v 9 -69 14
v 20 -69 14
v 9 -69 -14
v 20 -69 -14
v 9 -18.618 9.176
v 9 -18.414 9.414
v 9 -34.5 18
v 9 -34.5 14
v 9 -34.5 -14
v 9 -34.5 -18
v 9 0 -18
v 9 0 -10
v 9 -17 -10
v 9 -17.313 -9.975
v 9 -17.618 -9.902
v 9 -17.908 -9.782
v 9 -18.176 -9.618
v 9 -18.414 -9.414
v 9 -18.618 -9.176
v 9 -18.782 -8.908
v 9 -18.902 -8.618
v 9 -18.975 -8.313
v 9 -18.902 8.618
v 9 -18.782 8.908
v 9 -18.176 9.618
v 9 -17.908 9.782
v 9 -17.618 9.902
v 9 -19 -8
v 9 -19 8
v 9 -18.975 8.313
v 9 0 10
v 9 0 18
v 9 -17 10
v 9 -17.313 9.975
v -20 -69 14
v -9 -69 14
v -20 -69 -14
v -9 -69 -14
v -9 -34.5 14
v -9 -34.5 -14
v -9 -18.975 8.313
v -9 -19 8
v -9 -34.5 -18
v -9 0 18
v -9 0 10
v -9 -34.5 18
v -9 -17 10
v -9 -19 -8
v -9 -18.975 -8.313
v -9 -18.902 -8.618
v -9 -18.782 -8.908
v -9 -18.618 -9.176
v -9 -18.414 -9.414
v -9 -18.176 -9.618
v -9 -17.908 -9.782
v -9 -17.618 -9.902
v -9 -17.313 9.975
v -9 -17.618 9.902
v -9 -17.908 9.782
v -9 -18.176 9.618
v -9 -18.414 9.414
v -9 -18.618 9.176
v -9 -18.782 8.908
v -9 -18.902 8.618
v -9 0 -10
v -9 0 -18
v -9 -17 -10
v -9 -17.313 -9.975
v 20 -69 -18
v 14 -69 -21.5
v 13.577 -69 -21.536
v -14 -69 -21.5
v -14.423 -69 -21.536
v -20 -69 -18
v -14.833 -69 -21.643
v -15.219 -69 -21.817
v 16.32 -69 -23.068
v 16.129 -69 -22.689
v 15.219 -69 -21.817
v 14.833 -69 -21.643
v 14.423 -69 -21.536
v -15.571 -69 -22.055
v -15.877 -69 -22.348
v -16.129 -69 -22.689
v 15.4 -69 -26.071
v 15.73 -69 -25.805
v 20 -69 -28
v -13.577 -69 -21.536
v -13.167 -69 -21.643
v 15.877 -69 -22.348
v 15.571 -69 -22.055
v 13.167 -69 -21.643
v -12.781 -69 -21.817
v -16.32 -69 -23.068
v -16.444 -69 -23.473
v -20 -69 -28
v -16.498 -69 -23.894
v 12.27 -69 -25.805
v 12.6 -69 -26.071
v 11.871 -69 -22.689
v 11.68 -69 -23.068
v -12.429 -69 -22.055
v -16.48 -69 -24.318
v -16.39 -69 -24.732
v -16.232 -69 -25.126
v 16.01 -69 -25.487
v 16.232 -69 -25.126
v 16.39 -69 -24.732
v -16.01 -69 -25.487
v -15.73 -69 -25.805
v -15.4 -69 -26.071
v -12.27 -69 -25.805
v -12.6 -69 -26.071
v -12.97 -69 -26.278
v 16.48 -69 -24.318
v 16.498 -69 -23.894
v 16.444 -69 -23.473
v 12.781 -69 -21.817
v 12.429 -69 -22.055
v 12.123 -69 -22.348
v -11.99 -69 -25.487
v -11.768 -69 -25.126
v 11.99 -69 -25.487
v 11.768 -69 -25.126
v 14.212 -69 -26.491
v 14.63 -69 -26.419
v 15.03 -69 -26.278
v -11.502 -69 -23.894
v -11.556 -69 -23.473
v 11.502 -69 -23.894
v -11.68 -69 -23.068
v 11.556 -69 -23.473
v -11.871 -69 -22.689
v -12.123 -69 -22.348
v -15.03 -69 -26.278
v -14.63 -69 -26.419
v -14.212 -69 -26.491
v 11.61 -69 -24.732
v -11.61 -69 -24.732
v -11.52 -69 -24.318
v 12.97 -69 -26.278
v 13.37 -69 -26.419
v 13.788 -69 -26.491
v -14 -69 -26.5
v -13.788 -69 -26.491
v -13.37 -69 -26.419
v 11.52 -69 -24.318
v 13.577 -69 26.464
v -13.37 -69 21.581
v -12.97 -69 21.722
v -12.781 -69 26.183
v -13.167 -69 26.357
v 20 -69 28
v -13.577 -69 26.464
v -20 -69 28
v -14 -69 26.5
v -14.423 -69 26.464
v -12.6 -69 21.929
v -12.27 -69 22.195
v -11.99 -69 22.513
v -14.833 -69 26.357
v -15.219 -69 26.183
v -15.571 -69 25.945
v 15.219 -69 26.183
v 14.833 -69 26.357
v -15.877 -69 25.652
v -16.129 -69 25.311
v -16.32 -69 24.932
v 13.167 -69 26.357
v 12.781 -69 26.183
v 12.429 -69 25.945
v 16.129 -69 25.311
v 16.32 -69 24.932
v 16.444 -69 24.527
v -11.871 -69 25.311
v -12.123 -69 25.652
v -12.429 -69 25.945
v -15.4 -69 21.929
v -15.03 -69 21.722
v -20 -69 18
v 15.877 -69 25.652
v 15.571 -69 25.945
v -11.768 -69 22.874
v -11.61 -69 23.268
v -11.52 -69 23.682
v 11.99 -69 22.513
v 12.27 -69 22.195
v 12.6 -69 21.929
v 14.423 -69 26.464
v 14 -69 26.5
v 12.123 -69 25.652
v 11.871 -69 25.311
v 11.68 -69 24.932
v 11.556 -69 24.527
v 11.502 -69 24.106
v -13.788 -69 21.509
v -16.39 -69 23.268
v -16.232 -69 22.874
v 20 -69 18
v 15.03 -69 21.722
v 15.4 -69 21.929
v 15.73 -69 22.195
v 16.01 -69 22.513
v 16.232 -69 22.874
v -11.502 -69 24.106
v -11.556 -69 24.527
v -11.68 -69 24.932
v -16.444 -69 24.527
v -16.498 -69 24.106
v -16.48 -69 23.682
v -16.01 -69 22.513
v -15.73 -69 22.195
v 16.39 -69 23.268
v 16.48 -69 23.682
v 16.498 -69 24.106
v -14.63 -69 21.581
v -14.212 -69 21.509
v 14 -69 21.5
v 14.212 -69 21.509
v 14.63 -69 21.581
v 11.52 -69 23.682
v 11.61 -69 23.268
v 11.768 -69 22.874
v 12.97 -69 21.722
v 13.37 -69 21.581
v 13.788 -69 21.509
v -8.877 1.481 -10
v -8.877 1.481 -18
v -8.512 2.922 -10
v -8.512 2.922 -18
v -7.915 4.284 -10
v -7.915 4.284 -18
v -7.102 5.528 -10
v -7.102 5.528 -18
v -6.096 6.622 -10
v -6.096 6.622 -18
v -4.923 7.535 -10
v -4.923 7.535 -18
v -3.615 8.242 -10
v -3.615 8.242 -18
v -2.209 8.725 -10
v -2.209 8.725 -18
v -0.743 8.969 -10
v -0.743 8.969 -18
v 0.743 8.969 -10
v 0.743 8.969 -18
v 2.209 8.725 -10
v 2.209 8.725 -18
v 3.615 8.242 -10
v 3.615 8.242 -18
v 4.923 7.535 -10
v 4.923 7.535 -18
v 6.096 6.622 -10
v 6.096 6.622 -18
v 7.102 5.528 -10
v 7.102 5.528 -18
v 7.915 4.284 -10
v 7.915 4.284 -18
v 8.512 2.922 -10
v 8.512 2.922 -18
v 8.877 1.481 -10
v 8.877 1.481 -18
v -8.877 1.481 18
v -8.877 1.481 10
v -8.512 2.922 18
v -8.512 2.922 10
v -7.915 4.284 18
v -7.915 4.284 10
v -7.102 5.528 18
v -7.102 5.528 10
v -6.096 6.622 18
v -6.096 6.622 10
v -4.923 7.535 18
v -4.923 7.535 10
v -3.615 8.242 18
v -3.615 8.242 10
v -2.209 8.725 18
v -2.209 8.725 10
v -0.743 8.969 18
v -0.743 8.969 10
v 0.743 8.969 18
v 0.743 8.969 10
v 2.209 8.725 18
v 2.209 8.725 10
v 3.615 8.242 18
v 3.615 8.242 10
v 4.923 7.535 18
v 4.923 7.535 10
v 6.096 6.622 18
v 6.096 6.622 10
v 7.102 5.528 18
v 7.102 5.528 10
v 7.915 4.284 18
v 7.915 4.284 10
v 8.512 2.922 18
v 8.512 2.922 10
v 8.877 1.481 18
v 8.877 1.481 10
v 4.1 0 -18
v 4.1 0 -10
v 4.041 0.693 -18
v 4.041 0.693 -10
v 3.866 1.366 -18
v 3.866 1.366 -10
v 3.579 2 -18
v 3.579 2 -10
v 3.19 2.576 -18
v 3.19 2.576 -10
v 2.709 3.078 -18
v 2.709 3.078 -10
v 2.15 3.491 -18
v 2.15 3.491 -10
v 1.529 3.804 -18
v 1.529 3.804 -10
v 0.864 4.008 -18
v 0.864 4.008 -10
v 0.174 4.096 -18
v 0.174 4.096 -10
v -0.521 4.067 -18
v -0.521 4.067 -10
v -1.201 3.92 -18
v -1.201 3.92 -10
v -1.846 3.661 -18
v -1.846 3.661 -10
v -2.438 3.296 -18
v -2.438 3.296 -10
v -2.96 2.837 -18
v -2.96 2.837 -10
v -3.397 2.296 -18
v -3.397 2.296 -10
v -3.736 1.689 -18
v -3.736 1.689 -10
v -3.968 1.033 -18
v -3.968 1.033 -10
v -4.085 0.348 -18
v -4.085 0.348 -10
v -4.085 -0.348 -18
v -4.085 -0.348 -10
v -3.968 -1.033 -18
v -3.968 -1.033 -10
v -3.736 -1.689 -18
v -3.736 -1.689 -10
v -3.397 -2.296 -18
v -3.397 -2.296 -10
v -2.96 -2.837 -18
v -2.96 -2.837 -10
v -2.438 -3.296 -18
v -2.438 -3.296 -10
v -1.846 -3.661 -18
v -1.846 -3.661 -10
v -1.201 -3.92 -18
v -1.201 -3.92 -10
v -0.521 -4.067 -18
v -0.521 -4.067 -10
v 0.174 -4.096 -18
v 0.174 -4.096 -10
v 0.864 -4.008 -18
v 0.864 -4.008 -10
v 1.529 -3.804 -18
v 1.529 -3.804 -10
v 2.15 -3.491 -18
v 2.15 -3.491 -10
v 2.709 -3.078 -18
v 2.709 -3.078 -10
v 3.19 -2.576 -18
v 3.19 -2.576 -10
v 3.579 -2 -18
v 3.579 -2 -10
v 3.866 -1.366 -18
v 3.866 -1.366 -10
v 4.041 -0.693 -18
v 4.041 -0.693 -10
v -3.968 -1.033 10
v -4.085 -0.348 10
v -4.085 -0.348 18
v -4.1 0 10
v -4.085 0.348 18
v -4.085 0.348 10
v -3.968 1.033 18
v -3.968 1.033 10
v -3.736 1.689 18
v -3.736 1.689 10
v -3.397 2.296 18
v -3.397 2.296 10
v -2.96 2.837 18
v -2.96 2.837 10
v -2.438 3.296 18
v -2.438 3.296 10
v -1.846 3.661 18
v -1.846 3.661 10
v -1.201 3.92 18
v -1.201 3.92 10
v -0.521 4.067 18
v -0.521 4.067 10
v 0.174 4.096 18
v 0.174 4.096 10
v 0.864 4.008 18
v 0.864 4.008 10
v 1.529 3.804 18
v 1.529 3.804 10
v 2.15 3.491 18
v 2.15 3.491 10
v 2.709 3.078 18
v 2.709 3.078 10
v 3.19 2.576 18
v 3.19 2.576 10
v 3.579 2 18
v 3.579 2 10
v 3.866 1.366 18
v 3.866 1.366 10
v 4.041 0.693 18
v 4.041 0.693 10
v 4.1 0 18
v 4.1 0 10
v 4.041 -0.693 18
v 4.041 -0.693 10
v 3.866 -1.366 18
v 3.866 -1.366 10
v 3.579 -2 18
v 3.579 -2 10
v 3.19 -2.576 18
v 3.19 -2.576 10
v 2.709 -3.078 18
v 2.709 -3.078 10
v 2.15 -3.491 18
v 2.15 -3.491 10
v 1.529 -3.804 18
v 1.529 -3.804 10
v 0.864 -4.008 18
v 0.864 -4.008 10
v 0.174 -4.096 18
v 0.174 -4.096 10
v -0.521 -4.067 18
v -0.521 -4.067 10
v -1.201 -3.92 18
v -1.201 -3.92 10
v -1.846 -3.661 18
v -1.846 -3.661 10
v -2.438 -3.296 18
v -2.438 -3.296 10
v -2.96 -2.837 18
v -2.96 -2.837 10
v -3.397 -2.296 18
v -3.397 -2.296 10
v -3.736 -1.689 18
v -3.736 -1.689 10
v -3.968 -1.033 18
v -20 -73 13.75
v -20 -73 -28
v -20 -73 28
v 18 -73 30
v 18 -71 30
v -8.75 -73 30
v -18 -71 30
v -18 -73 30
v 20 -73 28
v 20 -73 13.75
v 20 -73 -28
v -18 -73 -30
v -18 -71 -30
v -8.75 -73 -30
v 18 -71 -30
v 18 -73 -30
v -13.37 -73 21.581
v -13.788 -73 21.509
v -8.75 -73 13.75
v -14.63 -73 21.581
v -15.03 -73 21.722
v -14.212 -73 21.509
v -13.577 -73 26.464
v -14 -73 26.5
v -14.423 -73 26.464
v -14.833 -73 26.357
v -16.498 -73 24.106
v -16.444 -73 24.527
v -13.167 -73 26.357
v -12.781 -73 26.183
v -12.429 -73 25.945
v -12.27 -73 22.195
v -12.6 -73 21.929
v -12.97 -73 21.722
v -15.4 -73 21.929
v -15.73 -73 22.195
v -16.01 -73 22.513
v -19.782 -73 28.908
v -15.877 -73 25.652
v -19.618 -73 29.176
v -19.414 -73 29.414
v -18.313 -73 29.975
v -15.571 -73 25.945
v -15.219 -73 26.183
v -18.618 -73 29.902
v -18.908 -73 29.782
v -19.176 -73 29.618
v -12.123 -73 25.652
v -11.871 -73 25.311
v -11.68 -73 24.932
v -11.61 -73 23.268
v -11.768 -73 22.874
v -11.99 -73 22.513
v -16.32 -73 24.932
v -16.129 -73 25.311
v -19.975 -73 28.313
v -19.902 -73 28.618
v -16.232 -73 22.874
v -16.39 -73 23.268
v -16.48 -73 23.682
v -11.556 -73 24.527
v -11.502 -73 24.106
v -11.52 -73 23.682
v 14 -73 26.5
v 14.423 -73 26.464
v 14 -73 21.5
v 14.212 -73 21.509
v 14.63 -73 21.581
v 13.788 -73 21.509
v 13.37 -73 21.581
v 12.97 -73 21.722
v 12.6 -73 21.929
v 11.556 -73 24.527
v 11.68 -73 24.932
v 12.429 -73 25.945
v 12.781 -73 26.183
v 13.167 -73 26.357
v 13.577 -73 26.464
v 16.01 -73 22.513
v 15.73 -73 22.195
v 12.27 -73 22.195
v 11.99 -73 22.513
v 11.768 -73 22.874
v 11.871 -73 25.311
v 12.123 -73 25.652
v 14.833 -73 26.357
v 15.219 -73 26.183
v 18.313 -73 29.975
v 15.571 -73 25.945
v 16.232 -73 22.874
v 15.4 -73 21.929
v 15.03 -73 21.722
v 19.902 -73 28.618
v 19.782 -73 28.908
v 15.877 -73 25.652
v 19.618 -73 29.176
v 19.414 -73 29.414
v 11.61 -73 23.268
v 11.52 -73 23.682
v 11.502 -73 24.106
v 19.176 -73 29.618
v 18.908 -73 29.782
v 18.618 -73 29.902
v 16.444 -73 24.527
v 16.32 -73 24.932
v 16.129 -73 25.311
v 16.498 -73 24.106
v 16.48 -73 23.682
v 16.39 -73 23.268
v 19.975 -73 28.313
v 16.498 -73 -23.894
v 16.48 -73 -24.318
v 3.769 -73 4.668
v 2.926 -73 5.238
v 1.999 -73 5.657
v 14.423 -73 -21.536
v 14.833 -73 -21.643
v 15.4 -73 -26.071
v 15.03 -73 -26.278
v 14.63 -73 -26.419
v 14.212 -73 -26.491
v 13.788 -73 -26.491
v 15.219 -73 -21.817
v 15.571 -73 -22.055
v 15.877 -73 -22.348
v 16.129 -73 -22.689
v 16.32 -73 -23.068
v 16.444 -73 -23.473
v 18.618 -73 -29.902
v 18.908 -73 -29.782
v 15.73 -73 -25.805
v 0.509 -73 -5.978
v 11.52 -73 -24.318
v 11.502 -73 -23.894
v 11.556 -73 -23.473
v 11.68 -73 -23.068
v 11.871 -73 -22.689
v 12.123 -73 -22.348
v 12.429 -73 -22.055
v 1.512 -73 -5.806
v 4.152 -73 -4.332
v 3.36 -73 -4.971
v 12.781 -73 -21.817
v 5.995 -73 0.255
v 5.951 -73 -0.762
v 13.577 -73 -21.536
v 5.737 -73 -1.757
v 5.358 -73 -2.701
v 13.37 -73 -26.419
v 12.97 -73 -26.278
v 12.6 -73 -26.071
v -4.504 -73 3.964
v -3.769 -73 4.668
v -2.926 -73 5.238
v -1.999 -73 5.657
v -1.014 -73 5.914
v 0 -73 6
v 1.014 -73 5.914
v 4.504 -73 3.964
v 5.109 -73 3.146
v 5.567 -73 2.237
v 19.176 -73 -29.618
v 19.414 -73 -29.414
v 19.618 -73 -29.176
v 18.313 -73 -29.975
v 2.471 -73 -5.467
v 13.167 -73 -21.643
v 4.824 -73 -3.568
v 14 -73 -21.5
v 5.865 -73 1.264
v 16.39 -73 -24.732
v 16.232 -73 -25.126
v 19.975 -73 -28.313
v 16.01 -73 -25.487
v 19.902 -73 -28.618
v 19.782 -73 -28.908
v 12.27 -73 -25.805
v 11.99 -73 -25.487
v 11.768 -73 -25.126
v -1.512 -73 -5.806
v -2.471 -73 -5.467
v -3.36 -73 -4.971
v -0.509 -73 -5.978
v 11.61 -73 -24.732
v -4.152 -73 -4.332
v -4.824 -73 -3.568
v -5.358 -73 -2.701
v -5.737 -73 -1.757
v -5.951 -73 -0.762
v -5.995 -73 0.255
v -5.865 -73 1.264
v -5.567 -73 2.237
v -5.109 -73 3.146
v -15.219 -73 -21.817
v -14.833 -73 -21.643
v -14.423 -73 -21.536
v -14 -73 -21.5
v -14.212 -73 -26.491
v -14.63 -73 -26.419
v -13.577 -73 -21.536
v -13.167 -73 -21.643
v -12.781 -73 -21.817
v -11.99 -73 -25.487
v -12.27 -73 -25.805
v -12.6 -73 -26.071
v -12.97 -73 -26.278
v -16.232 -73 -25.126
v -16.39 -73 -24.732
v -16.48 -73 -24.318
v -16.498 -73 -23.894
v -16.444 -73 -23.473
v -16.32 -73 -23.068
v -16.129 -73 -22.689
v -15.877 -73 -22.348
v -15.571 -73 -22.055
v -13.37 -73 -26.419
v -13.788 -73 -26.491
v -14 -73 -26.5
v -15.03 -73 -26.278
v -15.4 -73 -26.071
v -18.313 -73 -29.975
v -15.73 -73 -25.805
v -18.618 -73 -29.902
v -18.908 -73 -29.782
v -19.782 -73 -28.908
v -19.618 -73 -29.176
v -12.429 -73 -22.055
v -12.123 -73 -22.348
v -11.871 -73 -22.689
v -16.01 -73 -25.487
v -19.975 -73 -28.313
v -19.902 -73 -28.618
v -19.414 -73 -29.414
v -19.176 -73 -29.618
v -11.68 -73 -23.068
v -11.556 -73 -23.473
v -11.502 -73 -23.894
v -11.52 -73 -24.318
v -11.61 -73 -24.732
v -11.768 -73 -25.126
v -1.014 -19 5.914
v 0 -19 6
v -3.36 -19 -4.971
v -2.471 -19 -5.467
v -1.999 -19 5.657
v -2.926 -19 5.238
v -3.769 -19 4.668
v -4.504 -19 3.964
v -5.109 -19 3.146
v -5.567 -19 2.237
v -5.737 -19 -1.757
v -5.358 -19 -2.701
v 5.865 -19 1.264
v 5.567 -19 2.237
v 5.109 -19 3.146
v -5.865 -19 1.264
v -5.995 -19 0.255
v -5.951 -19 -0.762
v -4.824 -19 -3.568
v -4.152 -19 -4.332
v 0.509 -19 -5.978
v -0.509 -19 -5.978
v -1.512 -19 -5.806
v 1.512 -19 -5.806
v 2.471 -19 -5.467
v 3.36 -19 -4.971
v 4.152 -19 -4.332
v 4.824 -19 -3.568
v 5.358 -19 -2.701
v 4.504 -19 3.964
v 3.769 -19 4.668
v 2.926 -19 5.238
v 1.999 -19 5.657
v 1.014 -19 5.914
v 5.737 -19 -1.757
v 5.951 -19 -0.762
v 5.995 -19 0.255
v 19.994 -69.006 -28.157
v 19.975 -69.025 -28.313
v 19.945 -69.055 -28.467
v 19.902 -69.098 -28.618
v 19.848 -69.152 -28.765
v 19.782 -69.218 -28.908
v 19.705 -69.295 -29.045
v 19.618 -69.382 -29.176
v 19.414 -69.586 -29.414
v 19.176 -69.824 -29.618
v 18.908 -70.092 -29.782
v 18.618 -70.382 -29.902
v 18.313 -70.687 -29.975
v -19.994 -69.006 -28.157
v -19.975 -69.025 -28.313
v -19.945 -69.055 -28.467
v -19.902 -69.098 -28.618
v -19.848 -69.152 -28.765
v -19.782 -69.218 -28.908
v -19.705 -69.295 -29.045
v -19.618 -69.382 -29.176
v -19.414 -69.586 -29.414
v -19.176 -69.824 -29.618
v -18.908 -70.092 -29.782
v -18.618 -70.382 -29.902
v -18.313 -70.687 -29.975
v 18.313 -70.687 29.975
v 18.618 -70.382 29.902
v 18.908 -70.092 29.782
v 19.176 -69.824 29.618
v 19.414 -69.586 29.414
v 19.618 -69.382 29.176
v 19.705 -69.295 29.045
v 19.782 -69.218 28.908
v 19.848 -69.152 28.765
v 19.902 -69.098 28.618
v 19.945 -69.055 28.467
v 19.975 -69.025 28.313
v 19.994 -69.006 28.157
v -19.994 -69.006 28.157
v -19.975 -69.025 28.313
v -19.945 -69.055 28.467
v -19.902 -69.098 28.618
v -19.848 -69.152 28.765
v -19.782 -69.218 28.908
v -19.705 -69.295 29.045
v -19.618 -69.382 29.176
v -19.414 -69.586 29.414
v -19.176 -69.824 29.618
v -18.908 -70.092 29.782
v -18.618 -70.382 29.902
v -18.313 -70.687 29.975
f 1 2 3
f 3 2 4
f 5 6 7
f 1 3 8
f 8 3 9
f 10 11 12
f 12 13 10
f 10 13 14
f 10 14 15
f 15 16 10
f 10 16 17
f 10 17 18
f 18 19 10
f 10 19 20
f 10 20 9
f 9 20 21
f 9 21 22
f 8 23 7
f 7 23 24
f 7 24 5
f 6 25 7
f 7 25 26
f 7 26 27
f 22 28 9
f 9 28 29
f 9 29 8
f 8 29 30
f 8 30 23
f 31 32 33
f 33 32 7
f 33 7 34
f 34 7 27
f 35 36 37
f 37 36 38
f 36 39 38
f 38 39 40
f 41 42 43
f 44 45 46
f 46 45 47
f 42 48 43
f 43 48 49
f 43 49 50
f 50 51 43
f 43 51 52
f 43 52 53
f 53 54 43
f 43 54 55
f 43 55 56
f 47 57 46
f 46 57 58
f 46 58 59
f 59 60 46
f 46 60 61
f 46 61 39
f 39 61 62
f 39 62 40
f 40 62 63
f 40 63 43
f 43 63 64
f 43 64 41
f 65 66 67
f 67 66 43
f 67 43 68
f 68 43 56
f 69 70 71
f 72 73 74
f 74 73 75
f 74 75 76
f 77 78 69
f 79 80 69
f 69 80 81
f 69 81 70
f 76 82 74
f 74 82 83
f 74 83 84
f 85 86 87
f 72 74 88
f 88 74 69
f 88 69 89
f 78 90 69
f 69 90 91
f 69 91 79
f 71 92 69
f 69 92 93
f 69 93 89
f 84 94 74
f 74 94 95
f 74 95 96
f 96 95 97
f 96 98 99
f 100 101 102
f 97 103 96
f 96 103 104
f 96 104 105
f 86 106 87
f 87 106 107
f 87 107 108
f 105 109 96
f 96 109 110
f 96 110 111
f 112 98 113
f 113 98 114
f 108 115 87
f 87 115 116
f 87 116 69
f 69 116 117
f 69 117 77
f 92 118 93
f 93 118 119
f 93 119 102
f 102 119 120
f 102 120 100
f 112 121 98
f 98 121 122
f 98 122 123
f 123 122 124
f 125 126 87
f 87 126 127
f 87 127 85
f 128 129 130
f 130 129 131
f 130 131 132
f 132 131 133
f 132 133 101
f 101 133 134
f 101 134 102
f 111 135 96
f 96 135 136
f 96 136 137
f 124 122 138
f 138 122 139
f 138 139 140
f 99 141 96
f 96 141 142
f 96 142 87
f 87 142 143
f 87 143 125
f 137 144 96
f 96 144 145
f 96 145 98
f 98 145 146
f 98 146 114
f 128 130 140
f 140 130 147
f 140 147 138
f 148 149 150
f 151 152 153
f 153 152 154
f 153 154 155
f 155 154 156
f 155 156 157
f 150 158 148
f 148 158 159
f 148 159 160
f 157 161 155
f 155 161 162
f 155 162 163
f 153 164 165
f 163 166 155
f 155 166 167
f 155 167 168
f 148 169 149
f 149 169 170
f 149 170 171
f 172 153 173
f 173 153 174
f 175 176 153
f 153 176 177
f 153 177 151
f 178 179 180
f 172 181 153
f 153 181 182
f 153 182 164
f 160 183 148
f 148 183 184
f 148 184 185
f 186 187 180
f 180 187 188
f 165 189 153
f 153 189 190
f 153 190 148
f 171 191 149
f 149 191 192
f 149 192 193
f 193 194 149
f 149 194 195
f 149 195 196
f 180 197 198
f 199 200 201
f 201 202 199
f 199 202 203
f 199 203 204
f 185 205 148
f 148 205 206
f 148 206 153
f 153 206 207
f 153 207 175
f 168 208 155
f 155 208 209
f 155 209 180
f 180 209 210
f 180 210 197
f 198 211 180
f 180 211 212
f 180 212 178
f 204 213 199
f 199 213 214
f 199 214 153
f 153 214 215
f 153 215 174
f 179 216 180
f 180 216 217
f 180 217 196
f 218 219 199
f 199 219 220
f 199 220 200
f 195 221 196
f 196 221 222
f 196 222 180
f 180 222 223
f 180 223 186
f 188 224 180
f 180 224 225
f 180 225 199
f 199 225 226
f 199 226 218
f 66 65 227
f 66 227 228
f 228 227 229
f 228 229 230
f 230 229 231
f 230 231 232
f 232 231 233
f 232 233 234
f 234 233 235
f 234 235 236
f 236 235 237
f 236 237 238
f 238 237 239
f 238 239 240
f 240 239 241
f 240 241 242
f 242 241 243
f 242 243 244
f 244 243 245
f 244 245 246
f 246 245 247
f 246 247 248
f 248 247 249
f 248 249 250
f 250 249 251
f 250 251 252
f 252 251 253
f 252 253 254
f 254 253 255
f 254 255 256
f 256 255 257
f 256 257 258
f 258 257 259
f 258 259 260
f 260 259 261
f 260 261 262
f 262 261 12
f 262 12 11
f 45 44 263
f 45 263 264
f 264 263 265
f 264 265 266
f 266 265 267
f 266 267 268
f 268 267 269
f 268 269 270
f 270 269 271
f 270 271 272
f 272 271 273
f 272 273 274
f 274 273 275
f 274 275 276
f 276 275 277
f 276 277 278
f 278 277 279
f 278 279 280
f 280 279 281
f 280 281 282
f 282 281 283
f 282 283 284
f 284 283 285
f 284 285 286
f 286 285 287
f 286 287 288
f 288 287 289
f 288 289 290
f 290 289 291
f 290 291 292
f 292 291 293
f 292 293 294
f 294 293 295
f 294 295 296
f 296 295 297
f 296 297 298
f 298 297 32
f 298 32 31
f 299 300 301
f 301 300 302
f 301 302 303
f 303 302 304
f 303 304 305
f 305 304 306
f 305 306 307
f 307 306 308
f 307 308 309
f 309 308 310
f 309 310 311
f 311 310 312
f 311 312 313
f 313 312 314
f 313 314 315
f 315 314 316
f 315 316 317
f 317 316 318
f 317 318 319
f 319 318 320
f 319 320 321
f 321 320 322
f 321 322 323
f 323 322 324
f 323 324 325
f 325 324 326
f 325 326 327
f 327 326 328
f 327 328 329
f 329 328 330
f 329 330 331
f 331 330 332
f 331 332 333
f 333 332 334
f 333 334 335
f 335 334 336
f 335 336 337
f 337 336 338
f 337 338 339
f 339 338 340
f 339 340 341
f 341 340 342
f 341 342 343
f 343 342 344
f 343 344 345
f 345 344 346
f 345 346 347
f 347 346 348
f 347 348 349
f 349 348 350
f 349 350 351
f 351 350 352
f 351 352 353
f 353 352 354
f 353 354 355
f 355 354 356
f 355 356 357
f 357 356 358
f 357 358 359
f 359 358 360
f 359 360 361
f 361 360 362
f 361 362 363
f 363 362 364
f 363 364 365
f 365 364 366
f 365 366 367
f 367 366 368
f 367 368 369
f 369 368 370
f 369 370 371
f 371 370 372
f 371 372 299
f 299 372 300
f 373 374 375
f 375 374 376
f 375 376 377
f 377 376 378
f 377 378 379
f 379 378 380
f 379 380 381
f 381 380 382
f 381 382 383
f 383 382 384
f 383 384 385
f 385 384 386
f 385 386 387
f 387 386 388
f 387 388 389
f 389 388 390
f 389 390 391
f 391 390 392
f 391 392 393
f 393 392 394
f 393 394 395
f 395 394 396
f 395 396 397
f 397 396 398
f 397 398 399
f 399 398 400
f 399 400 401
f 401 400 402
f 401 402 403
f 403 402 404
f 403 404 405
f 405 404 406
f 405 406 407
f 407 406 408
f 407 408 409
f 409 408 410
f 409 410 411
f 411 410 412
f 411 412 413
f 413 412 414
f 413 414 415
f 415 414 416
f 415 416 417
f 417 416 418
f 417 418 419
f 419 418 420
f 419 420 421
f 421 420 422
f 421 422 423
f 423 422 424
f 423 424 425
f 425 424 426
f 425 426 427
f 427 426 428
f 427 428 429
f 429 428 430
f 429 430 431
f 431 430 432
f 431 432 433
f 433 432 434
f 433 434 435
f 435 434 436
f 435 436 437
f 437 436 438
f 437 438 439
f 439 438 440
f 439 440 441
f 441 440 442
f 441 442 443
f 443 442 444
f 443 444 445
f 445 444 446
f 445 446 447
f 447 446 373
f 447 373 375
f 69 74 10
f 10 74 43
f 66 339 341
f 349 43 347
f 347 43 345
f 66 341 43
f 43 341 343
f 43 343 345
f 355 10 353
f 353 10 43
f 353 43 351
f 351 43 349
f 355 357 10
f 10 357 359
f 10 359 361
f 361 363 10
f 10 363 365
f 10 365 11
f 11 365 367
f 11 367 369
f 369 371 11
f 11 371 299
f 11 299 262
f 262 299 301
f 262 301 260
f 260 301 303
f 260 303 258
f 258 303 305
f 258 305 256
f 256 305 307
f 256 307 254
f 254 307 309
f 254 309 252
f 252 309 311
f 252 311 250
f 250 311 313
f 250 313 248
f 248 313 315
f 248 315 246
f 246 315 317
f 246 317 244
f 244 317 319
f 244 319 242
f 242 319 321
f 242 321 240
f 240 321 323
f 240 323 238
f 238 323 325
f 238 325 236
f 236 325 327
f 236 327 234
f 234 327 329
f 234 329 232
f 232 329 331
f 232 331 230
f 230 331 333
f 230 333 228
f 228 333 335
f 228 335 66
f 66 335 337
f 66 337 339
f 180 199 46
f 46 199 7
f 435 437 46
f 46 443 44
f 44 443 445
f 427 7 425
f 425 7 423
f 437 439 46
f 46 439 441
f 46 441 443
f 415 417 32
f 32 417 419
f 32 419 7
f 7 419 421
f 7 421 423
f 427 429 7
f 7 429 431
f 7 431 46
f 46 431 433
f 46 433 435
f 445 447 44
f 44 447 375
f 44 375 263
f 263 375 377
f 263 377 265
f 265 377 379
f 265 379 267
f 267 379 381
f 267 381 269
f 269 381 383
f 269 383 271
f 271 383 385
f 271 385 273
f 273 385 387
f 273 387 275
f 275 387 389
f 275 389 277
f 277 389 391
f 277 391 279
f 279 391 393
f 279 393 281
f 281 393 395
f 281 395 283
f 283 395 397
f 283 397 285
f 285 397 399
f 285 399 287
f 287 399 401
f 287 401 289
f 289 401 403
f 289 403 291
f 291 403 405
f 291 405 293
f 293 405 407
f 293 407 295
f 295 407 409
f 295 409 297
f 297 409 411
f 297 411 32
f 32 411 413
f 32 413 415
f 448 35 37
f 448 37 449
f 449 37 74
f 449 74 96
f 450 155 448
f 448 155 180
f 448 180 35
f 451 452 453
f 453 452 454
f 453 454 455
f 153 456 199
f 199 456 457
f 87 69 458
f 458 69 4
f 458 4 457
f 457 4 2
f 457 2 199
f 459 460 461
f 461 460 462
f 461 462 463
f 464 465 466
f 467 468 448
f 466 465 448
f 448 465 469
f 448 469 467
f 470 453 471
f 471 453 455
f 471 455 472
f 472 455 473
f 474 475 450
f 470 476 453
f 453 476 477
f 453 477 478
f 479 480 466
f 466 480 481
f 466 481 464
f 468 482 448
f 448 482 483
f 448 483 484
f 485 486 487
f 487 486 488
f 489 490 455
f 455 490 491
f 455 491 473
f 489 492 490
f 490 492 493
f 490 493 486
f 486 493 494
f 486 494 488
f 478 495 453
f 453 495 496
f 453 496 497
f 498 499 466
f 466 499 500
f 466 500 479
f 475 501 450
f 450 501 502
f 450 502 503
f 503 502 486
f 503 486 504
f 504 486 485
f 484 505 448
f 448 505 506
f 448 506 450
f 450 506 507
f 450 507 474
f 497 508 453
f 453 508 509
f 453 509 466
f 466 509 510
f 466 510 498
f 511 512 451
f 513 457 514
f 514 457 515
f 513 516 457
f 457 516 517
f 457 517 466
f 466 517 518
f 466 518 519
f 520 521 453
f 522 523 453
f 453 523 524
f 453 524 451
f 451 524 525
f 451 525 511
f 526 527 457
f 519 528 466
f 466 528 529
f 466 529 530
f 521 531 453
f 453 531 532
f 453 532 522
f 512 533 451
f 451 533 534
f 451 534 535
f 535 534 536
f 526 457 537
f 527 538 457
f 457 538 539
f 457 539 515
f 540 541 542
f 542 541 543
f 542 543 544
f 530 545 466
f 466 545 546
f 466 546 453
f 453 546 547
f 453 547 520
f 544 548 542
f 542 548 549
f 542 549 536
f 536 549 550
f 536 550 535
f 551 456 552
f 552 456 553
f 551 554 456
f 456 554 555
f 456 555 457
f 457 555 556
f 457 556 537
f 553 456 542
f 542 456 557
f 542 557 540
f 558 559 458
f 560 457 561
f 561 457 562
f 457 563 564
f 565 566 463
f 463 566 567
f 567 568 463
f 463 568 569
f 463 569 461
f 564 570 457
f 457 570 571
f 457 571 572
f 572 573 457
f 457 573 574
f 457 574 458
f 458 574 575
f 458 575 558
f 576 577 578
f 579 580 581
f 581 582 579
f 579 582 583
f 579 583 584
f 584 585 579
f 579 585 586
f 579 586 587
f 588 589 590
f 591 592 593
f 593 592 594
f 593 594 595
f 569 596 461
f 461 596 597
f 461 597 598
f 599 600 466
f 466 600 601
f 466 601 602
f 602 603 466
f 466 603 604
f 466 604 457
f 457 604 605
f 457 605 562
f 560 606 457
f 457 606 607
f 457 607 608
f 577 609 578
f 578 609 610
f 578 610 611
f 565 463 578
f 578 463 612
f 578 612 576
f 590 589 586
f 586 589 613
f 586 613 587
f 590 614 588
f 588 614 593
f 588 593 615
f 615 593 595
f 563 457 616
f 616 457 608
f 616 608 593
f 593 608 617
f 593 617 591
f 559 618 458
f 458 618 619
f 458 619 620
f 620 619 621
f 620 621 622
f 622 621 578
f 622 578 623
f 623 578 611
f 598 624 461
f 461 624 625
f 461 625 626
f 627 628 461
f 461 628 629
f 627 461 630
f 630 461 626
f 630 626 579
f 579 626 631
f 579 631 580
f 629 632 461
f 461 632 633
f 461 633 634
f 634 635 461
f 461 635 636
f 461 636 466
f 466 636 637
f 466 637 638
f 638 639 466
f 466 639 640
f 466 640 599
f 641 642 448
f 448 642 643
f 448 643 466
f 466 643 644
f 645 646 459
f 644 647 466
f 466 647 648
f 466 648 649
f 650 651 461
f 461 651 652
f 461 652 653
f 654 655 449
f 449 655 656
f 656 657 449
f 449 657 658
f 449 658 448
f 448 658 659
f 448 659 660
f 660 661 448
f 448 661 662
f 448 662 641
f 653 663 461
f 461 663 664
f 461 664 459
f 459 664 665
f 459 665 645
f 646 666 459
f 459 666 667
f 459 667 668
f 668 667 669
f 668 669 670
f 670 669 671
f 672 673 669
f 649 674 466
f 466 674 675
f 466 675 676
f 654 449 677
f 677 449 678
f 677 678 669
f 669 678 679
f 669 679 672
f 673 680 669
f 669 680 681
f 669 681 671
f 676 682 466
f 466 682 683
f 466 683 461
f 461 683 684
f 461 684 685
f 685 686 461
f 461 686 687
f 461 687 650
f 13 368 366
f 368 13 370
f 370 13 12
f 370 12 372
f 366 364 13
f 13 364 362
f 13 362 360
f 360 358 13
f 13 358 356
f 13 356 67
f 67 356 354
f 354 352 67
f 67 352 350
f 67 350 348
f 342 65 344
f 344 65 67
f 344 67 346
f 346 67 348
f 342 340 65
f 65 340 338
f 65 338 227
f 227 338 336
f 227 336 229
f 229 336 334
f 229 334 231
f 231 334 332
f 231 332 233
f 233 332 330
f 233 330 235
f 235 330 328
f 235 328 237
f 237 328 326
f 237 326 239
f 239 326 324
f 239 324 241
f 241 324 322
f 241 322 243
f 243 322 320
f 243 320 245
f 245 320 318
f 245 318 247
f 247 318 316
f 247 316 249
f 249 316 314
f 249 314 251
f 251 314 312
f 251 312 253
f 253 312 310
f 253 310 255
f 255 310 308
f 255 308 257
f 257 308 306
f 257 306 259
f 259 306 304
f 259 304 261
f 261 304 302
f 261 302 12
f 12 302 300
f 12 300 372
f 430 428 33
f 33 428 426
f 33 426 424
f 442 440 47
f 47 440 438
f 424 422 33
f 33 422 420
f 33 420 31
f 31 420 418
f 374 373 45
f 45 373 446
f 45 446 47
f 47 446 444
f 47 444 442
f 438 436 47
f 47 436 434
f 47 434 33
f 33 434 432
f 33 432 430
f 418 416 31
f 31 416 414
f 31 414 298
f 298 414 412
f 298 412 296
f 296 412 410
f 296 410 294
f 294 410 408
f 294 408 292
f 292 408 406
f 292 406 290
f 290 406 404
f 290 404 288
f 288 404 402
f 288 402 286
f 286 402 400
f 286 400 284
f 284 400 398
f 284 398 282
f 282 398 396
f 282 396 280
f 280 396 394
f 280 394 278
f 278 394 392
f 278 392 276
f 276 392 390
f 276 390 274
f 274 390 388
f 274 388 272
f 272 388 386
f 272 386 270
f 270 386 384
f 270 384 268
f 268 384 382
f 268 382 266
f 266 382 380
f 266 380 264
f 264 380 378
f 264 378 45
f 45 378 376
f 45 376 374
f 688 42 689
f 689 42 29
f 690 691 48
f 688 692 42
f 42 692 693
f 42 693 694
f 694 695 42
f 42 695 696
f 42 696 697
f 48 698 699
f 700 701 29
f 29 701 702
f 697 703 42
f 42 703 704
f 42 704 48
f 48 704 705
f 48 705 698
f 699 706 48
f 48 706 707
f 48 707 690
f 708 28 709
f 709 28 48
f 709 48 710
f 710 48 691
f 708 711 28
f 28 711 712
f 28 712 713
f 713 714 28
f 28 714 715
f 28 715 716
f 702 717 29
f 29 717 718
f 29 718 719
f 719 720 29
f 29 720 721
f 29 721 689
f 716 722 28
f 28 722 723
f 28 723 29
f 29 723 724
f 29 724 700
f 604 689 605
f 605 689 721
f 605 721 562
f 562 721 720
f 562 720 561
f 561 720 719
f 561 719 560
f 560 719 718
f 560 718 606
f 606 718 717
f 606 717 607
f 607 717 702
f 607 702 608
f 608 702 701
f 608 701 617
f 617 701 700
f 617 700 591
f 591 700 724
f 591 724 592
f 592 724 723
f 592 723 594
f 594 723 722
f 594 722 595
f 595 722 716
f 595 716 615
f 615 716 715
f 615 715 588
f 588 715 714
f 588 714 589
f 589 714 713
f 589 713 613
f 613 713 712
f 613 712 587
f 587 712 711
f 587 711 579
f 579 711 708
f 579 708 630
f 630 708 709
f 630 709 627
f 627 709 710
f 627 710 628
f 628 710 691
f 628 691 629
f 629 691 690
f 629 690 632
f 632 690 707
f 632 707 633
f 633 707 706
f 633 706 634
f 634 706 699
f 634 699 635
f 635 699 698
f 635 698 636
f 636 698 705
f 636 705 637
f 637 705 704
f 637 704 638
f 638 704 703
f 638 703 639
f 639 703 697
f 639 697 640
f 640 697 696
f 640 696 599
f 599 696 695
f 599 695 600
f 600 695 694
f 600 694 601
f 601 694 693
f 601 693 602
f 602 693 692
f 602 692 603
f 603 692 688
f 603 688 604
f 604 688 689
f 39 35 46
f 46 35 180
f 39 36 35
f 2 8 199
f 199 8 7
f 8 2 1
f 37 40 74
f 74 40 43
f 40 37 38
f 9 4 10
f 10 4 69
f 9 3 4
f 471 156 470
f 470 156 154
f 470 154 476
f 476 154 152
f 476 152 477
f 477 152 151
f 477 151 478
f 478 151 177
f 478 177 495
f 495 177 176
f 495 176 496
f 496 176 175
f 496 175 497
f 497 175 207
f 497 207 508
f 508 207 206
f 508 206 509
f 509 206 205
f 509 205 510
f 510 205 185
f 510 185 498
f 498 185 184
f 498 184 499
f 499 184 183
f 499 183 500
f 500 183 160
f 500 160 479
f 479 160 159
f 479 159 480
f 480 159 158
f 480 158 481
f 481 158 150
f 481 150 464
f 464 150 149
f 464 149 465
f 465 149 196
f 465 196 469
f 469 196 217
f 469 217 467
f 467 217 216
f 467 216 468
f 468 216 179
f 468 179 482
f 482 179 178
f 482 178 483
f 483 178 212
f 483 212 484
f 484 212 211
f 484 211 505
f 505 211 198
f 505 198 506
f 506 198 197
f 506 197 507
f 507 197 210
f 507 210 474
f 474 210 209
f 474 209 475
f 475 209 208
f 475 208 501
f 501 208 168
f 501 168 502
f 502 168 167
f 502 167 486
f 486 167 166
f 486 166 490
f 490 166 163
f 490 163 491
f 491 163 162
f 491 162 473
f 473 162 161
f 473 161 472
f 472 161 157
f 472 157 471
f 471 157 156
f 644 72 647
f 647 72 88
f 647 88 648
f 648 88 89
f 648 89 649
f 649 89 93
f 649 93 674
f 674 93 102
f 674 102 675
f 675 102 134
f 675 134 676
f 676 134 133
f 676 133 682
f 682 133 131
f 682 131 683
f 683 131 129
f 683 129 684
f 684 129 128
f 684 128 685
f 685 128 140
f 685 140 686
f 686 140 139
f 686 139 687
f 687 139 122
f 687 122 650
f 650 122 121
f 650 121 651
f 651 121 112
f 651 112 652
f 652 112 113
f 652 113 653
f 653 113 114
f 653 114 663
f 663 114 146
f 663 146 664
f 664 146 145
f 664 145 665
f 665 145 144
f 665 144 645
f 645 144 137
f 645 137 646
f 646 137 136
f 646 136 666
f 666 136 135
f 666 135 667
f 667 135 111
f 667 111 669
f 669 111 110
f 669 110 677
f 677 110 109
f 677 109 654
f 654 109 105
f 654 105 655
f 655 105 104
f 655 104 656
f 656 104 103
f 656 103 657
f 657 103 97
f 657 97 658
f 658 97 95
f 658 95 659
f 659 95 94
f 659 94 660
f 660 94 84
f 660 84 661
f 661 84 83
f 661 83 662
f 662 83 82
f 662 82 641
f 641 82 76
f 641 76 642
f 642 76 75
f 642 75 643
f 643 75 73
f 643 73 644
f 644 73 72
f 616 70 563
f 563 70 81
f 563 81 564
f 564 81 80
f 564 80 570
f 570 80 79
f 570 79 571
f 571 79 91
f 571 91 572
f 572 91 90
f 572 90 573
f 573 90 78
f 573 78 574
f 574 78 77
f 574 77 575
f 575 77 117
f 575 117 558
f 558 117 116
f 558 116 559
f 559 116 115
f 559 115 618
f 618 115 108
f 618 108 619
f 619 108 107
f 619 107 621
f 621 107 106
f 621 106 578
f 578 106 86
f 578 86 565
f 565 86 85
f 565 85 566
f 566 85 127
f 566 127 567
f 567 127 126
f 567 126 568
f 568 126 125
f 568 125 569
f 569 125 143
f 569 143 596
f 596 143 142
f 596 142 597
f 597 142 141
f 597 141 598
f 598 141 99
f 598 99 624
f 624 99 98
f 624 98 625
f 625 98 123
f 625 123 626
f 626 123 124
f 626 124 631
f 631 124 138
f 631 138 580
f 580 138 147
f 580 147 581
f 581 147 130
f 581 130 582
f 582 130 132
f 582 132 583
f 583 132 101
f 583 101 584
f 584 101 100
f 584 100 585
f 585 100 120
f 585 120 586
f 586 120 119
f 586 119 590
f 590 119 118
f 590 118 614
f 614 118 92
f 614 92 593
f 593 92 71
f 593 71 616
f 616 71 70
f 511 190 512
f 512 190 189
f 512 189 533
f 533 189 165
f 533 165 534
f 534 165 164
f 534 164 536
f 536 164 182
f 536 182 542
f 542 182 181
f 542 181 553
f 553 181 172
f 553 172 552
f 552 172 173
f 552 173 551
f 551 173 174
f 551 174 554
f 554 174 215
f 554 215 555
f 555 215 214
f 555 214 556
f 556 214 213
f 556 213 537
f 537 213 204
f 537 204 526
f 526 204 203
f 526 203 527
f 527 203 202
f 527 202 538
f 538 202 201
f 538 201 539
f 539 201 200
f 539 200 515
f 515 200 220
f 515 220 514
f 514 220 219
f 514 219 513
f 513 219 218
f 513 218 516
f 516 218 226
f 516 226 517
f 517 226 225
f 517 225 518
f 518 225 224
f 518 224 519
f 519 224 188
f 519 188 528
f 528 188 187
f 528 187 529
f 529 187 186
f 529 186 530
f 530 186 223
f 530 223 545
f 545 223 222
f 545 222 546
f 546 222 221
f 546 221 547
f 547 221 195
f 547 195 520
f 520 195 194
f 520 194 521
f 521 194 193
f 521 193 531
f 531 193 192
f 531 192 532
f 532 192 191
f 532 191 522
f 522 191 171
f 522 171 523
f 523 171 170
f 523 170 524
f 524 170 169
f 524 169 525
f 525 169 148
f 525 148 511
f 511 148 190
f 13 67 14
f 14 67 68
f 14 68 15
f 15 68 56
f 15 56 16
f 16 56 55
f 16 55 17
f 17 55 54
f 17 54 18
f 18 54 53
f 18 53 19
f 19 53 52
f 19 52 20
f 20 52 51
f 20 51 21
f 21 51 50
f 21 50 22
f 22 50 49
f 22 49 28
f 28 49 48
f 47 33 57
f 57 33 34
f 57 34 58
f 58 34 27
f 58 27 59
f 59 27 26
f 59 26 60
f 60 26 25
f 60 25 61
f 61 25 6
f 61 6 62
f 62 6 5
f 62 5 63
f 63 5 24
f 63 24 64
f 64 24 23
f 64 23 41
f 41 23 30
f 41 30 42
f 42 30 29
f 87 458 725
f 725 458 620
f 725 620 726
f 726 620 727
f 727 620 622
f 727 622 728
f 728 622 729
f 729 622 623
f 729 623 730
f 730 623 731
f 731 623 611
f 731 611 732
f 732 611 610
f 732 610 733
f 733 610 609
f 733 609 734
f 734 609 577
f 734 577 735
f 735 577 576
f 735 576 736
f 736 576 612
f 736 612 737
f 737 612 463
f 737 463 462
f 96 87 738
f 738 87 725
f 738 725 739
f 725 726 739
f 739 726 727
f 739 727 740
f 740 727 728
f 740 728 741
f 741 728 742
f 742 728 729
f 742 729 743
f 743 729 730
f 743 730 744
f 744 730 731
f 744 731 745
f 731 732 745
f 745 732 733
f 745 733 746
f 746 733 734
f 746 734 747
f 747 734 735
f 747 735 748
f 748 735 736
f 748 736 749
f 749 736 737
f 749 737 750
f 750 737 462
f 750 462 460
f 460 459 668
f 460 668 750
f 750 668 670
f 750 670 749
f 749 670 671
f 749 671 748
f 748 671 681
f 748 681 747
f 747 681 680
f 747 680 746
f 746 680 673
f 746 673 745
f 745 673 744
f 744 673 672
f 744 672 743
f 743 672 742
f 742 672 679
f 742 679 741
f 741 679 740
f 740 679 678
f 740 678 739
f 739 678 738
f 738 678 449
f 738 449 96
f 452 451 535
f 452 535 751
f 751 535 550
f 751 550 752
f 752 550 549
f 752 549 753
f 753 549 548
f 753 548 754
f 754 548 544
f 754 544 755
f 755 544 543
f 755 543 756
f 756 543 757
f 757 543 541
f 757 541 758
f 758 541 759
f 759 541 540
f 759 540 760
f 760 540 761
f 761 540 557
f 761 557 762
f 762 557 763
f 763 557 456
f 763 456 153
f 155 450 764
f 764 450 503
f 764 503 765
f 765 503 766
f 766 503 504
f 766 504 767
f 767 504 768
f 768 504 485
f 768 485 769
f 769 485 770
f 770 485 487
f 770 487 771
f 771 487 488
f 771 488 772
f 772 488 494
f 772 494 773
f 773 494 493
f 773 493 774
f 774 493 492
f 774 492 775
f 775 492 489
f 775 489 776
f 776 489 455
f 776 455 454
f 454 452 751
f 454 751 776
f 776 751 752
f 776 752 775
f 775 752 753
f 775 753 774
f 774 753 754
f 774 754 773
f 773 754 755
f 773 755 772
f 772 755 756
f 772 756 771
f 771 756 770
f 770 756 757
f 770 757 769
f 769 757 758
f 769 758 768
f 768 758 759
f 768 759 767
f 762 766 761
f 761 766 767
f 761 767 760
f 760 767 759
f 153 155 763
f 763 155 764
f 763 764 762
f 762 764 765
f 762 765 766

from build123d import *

# Parameters (mm, degrees)
SKETCH_1_R           = 4.1
EXTRUDE_1_DEPTH      = 18
EXTRUDE_1_DEPTH_BACK = 18
SKETCH_3_W           = 40
SKETCH_3_H           = 60
EXTRUDE_2_DEPTH      = 4
CUT_EXTRUDE_START    = 50
SKETCH_4_W           = 18
SKETCH_4_H           = 20
CUT_EXTRUDE_1_DEPTH  = 29
SKETCH_5_R           = 6
CUT_EXTRUDE_2_DEPTH  = 55
EXTRUDE_START        = 18
EXTRUDE_3_DEPTH      = 4
EXTRUDE_START_2      = -18
EXTRUDE_4_DEPTH      = 4
SKETCH_7_R           = 2.5
CUT_EXTRUDE_4_DEPTH  = 5
FILLET_1_R           = 2


with BuildPart() as part:
    # Эскиз1 → Бобышка-Вытянуть1 (new body, two sides)
    with BuildSketch(Plane.XY) as extrude_1_sk:
        with BuildLine():
            Line((-9, 0), (-9, -73))
            Line((-9, -73), (9, -73))
            Line((9, -73), (9, 0))
            ThreePointArc((9, 0), (0, 9), (-9, 0))
        make_face()
        Circle(SKETCH_1_R, mode=Mode.SUBTRACT)
    extrude(amount=EXTRUDE_1_DEPTH)
    extrude(extrude_1_sk.sketch, amount=-EXTRUDE_1_DEPTH_BACK)

    # Эскиз3 → Бобышка-Вытянуть2 (add)
    with BuildSketch(Plane.XZ.offset(73)):
        Rectangle(SKETCH_3_W, SKETCH_3_H)
    extrude(amount=-EXTRUDE_2_DEPTH)

    # Эскиз4 → Вырез-Вытянуть1 (cut, through all)
    with BuildSketch(Plane(origin=(0, -69, 0), x_dir=(1, 0, 0), z_dir=(0, 1, 0)).offset(CUT_EXTRUDE_START)):
        Rectangle(SKETCH_4_W, SKETCH_4_H)
    extrude(amount=CUT_EXTRUDE_1_DEPTH, mode=Mode.SUBTRACT)

    # Эскиз5 → Вырез-Вытянуть2 (cut, through all)
    with BuildSketch(Plane(origin=(0, -19, 0), x_dir=(1, 0, 0), z_dir=(0, 1, 0))):
        Circle(SKETCH_5_R)
    extrude(amount=-CUT_EXTRUDE_2_DEPTH, mode=Mode.SUBTRACT)

    # Эскиз6 → Бобышка-Вытянуть3 (add)
    with BuildSketch(Plane.XY.offset(EXTRUDE_START)):
        Polygon((-20, -69), (-9, -34.5), (-9, -69), align=None)
        Polygon((9, -34.5), (20, -69), (9, -69), align=None)
    extrude(amount=-EXTRUDE_3_DEPTH)

    # Эскиз6<3> → Бобышка-Вытянуть4 (add)
    with BuildSketch(Plane.XY.offset(EXTRUDE_START_2)):
        Polygon((-20, -69), (-9, -34.5), (-9, -69), align=None)
        Polygon((9, -34.5), (20, -69), (9, -69), align=None)
    extrude(amount=EXTRUDE_4_DEPTH)

    # Эскиз7 → Вырез-Вытянуть4 (cut, through all)
    with BuildSketch(Plane(origin=(0, -69, 0), x_dir=(1, 0, 0), z_dir=(0, 1, 0))):
        with Locations((-14, -24)):
            Circle(SKETCH_7_R)
        with Locations((-14, 24)):
            Circle(SKETCH_7_R)
        with Locations((14, 24)):
            Circle(SKETCH_7_R)
        with Locations((14, -24)):
            Circle(SKETCH_7_R)
    extrude(amount=-CUT_EXTRUDE_4_DEPTH, mode=Mode.SUBTRACT)

    # Скругление1
    fillet_1_edges = [part.edges().sort_by_distance(p)[0] for p in [
        (-20, -71, -30),
        (0, -69, 30),
        (-20, -71, 30),
        (20, -71, 30),
        (0, -69, -30),
        (20, -71, -30),
        (0, -19, -10),
        (0, -19, 10),
    ]]
    fillet(fillet_1_edges, radius=FILLET_1_R)


solid = part.part
